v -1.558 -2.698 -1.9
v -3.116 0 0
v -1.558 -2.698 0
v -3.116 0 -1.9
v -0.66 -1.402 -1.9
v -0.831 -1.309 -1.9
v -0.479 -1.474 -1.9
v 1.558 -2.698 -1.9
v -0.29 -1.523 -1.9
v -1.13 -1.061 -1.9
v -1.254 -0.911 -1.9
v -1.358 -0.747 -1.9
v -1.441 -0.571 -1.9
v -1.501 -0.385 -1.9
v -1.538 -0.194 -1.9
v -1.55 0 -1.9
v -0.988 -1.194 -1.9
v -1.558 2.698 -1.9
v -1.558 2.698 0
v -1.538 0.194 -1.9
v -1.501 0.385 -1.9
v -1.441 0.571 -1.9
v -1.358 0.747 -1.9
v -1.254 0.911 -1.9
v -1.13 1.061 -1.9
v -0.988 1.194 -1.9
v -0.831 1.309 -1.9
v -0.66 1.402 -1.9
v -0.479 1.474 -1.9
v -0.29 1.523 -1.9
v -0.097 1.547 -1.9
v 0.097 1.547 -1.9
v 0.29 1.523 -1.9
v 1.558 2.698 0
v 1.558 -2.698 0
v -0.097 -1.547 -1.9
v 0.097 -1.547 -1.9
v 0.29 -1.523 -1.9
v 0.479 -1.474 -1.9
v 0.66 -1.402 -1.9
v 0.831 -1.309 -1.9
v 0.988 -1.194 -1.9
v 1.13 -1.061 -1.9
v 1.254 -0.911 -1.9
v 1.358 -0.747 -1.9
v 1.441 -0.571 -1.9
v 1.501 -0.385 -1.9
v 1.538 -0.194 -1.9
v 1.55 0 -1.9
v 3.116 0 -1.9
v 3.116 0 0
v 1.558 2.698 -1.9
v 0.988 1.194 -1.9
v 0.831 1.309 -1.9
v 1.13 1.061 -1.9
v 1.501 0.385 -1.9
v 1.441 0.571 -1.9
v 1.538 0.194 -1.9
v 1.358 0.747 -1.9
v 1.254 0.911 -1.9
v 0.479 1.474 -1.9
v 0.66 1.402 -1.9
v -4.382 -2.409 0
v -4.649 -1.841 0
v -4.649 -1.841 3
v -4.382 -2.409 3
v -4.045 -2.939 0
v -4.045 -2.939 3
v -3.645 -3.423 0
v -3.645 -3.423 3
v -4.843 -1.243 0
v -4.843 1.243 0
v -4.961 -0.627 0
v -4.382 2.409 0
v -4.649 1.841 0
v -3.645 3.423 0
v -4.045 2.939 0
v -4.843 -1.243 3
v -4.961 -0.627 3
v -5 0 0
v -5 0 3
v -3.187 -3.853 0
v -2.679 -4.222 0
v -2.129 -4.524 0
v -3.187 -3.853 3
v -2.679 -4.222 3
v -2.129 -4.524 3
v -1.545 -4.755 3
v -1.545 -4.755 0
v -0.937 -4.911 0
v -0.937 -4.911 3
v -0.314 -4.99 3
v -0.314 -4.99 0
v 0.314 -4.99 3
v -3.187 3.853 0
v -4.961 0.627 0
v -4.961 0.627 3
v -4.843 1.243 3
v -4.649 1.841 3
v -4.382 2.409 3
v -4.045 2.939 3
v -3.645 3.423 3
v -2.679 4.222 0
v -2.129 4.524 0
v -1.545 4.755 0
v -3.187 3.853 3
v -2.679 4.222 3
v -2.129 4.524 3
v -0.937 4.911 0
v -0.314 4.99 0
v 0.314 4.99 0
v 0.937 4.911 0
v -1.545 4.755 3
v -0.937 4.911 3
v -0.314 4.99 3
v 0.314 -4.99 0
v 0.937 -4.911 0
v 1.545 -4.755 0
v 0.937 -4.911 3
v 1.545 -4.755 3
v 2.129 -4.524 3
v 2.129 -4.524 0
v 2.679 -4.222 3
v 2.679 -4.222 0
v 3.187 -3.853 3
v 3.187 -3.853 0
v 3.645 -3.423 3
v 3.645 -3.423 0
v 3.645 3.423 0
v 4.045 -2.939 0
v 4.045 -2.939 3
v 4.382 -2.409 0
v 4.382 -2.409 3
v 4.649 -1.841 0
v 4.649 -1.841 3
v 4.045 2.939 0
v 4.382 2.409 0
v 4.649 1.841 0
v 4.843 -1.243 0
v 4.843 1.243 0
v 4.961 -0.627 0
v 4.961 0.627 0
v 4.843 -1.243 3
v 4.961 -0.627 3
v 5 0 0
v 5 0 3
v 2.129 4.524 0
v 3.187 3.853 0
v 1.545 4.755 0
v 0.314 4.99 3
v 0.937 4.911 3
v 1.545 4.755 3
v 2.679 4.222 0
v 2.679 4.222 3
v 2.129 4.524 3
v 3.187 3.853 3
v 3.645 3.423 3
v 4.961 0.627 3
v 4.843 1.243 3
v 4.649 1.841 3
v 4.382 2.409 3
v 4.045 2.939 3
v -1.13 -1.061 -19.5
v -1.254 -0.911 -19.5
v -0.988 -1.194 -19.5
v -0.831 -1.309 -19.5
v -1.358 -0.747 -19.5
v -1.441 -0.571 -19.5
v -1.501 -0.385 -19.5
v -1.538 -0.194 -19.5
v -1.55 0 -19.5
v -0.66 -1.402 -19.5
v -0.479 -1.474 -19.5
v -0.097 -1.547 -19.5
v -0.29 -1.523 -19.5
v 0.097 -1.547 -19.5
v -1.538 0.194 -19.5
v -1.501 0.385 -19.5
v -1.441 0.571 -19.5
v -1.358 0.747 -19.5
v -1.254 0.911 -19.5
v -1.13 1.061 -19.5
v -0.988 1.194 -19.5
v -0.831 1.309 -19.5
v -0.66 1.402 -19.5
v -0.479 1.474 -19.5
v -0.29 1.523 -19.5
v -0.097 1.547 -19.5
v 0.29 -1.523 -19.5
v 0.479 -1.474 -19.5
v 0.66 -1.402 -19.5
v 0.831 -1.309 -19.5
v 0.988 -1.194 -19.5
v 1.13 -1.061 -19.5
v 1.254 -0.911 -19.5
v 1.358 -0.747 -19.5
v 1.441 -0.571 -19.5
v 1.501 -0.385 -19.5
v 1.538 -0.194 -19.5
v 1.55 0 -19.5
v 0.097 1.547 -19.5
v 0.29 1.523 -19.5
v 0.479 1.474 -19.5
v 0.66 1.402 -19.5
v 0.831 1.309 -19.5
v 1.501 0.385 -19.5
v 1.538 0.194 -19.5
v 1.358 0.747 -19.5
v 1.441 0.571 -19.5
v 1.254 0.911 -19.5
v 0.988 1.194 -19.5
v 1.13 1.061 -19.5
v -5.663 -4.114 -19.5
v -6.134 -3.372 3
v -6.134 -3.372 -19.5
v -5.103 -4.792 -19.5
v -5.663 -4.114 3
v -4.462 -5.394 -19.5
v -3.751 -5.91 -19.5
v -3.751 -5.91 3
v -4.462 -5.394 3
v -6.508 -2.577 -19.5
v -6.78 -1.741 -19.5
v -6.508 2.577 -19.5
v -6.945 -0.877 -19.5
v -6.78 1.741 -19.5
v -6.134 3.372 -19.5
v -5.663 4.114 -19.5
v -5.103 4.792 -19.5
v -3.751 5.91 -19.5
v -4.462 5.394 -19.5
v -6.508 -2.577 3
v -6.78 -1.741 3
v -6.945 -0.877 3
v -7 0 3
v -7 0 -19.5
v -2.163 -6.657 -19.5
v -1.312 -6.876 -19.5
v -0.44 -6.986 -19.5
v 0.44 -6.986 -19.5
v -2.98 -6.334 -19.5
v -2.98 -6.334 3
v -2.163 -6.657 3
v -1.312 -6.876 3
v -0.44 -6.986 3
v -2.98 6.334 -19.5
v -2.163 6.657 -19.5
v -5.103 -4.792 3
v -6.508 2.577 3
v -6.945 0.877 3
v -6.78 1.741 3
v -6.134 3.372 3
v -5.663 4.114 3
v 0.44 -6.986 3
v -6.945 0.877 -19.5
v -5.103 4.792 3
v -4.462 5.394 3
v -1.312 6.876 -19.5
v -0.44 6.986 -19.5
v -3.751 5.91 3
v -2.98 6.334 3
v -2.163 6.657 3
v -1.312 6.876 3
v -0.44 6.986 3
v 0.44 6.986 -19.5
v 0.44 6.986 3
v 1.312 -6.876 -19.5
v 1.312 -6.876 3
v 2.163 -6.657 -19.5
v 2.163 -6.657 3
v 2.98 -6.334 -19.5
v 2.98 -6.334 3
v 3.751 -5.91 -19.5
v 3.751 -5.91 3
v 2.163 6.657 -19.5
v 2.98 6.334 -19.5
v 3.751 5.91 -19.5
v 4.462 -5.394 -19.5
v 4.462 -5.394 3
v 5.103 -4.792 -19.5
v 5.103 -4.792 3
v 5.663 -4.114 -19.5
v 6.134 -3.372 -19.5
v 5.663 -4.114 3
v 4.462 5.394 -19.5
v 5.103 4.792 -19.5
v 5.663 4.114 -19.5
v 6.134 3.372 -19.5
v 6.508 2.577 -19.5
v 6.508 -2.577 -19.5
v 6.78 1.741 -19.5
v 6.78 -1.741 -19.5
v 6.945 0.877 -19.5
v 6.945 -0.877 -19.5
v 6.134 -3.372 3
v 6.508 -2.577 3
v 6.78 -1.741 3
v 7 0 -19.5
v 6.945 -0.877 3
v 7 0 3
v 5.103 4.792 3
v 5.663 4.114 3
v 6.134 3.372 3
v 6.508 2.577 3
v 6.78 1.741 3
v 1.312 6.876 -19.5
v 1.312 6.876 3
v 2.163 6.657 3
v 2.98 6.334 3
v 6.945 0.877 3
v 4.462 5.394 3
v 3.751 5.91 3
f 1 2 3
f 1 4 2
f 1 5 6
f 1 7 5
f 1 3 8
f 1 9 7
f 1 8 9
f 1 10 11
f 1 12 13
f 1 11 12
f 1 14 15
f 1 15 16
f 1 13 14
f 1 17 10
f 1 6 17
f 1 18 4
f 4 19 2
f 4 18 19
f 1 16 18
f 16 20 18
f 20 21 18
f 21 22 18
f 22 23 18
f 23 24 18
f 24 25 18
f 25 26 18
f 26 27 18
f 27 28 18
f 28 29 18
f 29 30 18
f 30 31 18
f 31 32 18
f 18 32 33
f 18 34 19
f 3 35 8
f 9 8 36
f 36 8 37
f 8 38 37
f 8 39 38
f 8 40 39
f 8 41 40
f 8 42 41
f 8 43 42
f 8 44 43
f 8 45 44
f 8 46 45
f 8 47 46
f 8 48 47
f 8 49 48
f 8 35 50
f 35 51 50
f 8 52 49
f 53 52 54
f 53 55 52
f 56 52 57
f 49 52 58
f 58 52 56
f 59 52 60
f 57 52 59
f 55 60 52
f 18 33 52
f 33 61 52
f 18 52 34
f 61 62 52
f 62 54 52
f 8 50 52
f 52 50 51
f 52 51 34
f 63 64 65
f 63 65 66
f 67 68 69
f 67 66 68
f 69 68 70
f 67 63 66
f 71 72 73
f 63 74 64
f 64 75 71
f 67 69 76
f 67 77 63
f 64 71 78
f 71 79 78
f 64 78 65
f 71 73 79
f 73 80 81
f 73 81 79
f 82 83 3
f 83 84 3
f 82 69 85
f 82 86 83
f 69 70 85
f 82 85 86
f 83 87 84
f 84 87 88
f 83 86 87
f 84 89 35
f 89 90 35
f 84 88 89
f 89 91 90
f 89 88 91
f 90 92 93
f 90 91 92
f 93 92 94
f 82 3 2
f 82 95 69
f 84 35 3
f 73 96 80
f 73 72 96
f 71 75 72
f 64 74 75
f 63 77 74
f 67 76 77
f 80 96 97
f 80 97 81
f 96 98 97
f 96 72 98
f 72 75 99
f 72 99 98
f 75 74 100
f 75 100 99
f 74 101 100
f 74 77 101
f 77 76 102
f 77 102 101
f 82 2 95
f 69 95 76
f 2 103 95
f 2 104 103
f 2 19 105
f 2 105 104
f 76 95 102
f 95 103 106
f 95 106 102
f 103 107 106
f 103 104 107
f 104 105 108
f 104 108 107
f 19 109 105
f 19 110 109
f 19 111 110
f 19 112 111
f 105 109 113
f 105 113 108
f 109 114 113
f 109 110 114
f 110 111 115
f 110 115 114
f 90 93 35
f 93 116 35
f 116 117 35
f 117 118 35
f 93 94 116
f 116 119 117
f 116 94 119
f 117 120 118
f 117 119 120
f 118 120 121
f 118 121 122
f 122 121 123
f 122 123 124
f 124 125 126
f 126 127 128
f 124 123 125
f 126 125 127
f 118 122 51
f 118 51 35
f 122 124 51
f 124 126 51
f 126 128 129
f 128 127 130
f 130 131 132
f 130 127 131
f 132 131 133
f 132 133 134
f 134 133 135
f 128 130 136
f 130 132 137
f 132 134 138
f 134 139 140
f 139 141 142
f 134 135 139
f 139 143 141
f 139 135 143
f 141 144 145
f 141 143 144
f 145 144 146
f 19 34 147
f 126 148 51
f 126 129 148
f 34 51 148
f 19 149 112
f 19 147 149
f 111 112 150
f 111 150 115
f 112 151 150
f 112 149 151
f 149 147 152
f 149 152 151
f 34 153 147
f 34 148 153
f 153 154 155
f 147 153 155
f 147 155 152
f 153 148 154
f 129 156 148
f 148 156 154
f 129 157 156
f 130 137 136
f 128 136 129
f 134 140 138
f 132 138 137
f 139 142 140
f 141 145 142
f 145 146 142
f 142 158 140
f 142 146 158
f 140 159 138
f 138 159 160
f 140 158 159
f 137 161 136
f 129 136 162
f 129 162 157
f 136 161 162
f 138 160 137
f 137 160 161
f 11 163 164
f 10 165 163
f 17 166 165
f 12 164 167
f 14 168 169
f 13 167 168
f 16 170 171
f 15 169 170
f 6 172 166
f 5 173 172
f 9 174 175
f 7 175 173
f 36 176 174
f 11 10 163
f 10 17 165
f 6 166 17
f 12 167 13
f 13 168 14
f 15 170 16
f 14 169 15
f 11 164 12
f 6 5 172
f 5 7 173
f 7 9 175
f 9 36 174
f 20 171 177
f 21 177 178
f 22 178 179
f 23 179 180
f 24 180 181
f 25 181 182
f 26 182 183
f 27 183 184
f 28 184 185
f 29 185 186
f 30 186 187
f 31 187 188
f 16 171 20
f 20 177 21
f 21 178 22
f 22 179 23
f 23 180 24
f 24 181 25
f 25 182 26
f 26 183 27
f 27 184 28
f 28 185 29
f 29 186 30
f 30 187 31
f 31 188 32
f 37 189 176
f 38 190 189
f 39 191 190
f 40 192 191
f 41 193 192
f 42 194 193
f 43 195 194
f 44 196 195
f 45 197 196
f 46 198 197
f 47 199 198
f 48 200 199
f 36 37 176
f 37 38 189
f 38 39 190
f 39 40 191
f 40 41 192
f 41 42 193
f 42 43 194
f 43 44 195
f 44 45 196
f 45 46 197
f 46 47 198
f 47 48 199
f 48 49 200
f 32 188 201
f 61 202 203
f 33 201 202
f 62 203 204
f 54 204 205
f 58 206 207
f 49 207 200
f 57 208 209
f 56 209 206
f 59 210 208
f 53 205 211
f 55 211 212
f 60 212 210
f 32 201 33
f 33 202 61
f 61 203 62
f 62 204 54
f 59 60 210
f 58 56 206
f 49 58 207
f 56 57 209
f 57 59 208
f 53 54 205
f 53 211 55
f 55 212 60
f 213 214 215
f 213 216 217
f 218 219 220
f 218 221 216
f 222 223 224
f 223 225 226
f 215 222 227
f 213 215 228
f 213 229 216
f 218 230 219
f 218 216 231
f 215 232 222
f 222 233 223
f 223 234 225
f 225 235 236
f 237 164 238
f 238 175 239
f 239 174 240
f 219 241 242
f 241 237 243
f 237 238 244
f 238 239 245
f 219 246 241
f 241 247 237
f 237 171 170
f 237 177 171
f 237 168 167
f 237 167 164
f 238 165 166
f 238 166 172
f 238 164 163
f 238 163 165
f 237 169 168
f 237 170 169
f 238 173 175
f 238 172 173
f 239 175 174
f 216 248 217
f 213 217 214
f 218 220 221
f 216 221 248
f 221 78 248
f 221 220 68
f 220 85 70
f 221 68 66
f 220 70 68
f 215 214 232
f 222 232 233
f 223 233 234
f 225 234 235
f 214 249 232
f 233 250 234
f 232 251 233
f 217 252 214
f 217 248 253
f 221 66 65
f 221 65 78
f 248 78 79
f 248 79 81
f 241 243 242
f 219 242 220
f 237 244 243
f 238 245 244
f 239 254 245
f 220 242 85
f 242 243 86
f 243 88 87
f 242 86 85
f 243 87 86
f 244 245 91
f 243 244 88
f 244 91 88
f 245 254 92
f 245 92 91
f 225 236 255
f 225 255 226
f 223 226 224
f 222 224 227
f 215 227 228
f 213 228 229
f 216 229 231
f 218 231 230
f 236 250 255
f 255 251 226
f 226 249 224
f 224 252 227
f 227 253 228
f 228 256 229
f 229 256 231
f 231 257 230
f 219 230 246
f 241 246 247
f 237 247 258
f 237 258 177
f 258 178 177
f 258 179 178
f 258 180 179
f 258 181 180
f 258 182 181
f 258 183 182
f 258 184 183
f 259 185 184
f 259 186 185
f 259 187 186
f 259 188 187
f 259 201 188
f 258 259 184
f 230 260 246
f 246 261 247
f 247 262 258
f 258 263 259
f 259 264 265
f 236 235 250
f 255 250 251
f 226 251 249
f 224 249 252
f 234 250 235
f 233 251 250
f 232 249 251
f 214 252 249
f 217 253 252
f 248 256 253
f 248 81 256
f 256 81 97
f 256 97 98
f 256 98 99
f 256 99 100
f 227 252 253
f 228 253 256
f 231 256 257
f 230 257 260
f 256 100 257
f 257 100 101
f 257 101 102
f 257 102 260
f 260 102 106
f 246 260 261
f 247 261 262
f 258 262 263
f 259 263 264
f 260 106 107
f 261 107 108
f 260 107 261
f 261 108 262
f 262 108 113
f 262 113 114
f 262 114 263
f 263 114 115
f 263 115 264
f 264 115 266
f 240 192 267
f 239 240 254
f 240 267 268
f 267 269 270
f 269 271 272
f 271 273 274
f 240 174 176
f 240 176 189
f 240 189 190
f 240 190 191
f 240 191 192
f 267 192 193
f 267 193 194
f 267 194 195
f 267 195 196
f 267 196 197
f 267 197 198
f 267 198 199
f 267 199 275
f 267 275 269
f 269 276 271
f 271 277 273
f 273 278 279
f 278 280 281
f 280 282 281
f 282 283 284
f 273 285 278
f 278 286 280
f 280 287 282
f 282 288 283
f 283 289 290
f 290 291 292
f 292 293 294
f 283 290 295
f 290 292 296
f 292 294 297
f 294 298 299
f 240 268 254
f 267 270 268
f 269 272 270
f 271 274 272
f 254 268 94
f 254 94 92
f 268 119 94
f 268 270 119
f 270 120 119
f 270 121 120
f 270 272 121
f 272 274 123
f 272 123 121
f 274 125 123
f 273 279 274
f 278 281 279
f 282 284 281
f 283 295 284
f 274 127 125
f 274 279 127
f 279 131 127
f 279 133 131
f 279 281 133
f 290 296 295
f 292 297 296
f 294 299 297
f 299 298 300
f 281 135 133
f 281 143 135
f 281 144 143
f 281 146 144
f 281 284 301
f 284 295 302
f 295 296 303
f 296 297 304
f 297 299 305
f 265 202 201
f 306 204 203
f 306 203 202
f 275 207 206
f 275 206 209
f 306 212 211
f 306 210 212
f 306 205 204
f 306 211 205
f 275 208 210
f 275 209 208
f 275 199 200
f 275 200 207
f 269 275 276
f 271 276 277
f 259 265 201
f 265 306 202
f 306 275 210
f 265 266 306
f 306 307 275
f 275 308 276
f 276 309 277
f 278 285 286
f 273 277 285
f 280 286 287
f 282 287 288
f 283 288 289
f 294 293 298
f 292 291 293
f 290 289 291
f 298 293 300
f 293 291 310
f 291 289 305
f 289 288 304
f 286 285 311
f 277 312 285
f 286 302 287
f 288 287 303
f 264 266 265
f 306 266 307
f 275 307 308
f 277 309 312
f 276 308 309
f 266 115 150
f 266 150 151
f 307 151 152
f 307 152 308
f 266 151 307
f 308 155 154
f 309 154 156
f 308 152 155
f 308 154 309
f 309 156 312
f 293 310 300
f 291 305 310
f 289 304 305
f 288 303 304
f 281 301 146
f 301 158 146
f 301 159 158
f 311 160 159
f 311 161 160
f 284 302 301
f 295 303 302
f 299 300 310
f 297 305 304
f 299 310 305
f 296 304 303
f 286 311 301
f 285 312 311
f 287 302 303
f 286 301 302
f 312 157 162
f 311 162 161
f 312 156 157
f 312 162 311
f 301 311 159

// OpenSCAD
$fn = 50;

difference() {
	union() {
		translate(v = [0, 0, -19.5]) {
			cylinder(h = 22.5, r = 7.0);
		}
	}
	union() {
		translate(v = [0, 0, 0]) {
			rotate(a = [0, 0, 0]) {
				difference() {
					union() {
						translate(v = [0, 0, -1.9]) {
							linear_extrude(height = 1.9) {
								polygon(points = [[3.1158, 0.0], [1.5579000000000005, 2.698361953111554], [-1.5578999999999994, 2.6983619531115544], [-3.1158, 3.815754496783323e-16], [-1.5579000000000014, -2.6983619531115535], [1.557899999999998, -2.6983619531115552]]);
							}
						}
					}
					union();
				}
			}
		}
		#cylinder(h = 3, r = 5.0);
		#translate(v = [0, 0, -100.0]) {
			cylinder(h = 200, r = 1.55);
		}
	}
}
